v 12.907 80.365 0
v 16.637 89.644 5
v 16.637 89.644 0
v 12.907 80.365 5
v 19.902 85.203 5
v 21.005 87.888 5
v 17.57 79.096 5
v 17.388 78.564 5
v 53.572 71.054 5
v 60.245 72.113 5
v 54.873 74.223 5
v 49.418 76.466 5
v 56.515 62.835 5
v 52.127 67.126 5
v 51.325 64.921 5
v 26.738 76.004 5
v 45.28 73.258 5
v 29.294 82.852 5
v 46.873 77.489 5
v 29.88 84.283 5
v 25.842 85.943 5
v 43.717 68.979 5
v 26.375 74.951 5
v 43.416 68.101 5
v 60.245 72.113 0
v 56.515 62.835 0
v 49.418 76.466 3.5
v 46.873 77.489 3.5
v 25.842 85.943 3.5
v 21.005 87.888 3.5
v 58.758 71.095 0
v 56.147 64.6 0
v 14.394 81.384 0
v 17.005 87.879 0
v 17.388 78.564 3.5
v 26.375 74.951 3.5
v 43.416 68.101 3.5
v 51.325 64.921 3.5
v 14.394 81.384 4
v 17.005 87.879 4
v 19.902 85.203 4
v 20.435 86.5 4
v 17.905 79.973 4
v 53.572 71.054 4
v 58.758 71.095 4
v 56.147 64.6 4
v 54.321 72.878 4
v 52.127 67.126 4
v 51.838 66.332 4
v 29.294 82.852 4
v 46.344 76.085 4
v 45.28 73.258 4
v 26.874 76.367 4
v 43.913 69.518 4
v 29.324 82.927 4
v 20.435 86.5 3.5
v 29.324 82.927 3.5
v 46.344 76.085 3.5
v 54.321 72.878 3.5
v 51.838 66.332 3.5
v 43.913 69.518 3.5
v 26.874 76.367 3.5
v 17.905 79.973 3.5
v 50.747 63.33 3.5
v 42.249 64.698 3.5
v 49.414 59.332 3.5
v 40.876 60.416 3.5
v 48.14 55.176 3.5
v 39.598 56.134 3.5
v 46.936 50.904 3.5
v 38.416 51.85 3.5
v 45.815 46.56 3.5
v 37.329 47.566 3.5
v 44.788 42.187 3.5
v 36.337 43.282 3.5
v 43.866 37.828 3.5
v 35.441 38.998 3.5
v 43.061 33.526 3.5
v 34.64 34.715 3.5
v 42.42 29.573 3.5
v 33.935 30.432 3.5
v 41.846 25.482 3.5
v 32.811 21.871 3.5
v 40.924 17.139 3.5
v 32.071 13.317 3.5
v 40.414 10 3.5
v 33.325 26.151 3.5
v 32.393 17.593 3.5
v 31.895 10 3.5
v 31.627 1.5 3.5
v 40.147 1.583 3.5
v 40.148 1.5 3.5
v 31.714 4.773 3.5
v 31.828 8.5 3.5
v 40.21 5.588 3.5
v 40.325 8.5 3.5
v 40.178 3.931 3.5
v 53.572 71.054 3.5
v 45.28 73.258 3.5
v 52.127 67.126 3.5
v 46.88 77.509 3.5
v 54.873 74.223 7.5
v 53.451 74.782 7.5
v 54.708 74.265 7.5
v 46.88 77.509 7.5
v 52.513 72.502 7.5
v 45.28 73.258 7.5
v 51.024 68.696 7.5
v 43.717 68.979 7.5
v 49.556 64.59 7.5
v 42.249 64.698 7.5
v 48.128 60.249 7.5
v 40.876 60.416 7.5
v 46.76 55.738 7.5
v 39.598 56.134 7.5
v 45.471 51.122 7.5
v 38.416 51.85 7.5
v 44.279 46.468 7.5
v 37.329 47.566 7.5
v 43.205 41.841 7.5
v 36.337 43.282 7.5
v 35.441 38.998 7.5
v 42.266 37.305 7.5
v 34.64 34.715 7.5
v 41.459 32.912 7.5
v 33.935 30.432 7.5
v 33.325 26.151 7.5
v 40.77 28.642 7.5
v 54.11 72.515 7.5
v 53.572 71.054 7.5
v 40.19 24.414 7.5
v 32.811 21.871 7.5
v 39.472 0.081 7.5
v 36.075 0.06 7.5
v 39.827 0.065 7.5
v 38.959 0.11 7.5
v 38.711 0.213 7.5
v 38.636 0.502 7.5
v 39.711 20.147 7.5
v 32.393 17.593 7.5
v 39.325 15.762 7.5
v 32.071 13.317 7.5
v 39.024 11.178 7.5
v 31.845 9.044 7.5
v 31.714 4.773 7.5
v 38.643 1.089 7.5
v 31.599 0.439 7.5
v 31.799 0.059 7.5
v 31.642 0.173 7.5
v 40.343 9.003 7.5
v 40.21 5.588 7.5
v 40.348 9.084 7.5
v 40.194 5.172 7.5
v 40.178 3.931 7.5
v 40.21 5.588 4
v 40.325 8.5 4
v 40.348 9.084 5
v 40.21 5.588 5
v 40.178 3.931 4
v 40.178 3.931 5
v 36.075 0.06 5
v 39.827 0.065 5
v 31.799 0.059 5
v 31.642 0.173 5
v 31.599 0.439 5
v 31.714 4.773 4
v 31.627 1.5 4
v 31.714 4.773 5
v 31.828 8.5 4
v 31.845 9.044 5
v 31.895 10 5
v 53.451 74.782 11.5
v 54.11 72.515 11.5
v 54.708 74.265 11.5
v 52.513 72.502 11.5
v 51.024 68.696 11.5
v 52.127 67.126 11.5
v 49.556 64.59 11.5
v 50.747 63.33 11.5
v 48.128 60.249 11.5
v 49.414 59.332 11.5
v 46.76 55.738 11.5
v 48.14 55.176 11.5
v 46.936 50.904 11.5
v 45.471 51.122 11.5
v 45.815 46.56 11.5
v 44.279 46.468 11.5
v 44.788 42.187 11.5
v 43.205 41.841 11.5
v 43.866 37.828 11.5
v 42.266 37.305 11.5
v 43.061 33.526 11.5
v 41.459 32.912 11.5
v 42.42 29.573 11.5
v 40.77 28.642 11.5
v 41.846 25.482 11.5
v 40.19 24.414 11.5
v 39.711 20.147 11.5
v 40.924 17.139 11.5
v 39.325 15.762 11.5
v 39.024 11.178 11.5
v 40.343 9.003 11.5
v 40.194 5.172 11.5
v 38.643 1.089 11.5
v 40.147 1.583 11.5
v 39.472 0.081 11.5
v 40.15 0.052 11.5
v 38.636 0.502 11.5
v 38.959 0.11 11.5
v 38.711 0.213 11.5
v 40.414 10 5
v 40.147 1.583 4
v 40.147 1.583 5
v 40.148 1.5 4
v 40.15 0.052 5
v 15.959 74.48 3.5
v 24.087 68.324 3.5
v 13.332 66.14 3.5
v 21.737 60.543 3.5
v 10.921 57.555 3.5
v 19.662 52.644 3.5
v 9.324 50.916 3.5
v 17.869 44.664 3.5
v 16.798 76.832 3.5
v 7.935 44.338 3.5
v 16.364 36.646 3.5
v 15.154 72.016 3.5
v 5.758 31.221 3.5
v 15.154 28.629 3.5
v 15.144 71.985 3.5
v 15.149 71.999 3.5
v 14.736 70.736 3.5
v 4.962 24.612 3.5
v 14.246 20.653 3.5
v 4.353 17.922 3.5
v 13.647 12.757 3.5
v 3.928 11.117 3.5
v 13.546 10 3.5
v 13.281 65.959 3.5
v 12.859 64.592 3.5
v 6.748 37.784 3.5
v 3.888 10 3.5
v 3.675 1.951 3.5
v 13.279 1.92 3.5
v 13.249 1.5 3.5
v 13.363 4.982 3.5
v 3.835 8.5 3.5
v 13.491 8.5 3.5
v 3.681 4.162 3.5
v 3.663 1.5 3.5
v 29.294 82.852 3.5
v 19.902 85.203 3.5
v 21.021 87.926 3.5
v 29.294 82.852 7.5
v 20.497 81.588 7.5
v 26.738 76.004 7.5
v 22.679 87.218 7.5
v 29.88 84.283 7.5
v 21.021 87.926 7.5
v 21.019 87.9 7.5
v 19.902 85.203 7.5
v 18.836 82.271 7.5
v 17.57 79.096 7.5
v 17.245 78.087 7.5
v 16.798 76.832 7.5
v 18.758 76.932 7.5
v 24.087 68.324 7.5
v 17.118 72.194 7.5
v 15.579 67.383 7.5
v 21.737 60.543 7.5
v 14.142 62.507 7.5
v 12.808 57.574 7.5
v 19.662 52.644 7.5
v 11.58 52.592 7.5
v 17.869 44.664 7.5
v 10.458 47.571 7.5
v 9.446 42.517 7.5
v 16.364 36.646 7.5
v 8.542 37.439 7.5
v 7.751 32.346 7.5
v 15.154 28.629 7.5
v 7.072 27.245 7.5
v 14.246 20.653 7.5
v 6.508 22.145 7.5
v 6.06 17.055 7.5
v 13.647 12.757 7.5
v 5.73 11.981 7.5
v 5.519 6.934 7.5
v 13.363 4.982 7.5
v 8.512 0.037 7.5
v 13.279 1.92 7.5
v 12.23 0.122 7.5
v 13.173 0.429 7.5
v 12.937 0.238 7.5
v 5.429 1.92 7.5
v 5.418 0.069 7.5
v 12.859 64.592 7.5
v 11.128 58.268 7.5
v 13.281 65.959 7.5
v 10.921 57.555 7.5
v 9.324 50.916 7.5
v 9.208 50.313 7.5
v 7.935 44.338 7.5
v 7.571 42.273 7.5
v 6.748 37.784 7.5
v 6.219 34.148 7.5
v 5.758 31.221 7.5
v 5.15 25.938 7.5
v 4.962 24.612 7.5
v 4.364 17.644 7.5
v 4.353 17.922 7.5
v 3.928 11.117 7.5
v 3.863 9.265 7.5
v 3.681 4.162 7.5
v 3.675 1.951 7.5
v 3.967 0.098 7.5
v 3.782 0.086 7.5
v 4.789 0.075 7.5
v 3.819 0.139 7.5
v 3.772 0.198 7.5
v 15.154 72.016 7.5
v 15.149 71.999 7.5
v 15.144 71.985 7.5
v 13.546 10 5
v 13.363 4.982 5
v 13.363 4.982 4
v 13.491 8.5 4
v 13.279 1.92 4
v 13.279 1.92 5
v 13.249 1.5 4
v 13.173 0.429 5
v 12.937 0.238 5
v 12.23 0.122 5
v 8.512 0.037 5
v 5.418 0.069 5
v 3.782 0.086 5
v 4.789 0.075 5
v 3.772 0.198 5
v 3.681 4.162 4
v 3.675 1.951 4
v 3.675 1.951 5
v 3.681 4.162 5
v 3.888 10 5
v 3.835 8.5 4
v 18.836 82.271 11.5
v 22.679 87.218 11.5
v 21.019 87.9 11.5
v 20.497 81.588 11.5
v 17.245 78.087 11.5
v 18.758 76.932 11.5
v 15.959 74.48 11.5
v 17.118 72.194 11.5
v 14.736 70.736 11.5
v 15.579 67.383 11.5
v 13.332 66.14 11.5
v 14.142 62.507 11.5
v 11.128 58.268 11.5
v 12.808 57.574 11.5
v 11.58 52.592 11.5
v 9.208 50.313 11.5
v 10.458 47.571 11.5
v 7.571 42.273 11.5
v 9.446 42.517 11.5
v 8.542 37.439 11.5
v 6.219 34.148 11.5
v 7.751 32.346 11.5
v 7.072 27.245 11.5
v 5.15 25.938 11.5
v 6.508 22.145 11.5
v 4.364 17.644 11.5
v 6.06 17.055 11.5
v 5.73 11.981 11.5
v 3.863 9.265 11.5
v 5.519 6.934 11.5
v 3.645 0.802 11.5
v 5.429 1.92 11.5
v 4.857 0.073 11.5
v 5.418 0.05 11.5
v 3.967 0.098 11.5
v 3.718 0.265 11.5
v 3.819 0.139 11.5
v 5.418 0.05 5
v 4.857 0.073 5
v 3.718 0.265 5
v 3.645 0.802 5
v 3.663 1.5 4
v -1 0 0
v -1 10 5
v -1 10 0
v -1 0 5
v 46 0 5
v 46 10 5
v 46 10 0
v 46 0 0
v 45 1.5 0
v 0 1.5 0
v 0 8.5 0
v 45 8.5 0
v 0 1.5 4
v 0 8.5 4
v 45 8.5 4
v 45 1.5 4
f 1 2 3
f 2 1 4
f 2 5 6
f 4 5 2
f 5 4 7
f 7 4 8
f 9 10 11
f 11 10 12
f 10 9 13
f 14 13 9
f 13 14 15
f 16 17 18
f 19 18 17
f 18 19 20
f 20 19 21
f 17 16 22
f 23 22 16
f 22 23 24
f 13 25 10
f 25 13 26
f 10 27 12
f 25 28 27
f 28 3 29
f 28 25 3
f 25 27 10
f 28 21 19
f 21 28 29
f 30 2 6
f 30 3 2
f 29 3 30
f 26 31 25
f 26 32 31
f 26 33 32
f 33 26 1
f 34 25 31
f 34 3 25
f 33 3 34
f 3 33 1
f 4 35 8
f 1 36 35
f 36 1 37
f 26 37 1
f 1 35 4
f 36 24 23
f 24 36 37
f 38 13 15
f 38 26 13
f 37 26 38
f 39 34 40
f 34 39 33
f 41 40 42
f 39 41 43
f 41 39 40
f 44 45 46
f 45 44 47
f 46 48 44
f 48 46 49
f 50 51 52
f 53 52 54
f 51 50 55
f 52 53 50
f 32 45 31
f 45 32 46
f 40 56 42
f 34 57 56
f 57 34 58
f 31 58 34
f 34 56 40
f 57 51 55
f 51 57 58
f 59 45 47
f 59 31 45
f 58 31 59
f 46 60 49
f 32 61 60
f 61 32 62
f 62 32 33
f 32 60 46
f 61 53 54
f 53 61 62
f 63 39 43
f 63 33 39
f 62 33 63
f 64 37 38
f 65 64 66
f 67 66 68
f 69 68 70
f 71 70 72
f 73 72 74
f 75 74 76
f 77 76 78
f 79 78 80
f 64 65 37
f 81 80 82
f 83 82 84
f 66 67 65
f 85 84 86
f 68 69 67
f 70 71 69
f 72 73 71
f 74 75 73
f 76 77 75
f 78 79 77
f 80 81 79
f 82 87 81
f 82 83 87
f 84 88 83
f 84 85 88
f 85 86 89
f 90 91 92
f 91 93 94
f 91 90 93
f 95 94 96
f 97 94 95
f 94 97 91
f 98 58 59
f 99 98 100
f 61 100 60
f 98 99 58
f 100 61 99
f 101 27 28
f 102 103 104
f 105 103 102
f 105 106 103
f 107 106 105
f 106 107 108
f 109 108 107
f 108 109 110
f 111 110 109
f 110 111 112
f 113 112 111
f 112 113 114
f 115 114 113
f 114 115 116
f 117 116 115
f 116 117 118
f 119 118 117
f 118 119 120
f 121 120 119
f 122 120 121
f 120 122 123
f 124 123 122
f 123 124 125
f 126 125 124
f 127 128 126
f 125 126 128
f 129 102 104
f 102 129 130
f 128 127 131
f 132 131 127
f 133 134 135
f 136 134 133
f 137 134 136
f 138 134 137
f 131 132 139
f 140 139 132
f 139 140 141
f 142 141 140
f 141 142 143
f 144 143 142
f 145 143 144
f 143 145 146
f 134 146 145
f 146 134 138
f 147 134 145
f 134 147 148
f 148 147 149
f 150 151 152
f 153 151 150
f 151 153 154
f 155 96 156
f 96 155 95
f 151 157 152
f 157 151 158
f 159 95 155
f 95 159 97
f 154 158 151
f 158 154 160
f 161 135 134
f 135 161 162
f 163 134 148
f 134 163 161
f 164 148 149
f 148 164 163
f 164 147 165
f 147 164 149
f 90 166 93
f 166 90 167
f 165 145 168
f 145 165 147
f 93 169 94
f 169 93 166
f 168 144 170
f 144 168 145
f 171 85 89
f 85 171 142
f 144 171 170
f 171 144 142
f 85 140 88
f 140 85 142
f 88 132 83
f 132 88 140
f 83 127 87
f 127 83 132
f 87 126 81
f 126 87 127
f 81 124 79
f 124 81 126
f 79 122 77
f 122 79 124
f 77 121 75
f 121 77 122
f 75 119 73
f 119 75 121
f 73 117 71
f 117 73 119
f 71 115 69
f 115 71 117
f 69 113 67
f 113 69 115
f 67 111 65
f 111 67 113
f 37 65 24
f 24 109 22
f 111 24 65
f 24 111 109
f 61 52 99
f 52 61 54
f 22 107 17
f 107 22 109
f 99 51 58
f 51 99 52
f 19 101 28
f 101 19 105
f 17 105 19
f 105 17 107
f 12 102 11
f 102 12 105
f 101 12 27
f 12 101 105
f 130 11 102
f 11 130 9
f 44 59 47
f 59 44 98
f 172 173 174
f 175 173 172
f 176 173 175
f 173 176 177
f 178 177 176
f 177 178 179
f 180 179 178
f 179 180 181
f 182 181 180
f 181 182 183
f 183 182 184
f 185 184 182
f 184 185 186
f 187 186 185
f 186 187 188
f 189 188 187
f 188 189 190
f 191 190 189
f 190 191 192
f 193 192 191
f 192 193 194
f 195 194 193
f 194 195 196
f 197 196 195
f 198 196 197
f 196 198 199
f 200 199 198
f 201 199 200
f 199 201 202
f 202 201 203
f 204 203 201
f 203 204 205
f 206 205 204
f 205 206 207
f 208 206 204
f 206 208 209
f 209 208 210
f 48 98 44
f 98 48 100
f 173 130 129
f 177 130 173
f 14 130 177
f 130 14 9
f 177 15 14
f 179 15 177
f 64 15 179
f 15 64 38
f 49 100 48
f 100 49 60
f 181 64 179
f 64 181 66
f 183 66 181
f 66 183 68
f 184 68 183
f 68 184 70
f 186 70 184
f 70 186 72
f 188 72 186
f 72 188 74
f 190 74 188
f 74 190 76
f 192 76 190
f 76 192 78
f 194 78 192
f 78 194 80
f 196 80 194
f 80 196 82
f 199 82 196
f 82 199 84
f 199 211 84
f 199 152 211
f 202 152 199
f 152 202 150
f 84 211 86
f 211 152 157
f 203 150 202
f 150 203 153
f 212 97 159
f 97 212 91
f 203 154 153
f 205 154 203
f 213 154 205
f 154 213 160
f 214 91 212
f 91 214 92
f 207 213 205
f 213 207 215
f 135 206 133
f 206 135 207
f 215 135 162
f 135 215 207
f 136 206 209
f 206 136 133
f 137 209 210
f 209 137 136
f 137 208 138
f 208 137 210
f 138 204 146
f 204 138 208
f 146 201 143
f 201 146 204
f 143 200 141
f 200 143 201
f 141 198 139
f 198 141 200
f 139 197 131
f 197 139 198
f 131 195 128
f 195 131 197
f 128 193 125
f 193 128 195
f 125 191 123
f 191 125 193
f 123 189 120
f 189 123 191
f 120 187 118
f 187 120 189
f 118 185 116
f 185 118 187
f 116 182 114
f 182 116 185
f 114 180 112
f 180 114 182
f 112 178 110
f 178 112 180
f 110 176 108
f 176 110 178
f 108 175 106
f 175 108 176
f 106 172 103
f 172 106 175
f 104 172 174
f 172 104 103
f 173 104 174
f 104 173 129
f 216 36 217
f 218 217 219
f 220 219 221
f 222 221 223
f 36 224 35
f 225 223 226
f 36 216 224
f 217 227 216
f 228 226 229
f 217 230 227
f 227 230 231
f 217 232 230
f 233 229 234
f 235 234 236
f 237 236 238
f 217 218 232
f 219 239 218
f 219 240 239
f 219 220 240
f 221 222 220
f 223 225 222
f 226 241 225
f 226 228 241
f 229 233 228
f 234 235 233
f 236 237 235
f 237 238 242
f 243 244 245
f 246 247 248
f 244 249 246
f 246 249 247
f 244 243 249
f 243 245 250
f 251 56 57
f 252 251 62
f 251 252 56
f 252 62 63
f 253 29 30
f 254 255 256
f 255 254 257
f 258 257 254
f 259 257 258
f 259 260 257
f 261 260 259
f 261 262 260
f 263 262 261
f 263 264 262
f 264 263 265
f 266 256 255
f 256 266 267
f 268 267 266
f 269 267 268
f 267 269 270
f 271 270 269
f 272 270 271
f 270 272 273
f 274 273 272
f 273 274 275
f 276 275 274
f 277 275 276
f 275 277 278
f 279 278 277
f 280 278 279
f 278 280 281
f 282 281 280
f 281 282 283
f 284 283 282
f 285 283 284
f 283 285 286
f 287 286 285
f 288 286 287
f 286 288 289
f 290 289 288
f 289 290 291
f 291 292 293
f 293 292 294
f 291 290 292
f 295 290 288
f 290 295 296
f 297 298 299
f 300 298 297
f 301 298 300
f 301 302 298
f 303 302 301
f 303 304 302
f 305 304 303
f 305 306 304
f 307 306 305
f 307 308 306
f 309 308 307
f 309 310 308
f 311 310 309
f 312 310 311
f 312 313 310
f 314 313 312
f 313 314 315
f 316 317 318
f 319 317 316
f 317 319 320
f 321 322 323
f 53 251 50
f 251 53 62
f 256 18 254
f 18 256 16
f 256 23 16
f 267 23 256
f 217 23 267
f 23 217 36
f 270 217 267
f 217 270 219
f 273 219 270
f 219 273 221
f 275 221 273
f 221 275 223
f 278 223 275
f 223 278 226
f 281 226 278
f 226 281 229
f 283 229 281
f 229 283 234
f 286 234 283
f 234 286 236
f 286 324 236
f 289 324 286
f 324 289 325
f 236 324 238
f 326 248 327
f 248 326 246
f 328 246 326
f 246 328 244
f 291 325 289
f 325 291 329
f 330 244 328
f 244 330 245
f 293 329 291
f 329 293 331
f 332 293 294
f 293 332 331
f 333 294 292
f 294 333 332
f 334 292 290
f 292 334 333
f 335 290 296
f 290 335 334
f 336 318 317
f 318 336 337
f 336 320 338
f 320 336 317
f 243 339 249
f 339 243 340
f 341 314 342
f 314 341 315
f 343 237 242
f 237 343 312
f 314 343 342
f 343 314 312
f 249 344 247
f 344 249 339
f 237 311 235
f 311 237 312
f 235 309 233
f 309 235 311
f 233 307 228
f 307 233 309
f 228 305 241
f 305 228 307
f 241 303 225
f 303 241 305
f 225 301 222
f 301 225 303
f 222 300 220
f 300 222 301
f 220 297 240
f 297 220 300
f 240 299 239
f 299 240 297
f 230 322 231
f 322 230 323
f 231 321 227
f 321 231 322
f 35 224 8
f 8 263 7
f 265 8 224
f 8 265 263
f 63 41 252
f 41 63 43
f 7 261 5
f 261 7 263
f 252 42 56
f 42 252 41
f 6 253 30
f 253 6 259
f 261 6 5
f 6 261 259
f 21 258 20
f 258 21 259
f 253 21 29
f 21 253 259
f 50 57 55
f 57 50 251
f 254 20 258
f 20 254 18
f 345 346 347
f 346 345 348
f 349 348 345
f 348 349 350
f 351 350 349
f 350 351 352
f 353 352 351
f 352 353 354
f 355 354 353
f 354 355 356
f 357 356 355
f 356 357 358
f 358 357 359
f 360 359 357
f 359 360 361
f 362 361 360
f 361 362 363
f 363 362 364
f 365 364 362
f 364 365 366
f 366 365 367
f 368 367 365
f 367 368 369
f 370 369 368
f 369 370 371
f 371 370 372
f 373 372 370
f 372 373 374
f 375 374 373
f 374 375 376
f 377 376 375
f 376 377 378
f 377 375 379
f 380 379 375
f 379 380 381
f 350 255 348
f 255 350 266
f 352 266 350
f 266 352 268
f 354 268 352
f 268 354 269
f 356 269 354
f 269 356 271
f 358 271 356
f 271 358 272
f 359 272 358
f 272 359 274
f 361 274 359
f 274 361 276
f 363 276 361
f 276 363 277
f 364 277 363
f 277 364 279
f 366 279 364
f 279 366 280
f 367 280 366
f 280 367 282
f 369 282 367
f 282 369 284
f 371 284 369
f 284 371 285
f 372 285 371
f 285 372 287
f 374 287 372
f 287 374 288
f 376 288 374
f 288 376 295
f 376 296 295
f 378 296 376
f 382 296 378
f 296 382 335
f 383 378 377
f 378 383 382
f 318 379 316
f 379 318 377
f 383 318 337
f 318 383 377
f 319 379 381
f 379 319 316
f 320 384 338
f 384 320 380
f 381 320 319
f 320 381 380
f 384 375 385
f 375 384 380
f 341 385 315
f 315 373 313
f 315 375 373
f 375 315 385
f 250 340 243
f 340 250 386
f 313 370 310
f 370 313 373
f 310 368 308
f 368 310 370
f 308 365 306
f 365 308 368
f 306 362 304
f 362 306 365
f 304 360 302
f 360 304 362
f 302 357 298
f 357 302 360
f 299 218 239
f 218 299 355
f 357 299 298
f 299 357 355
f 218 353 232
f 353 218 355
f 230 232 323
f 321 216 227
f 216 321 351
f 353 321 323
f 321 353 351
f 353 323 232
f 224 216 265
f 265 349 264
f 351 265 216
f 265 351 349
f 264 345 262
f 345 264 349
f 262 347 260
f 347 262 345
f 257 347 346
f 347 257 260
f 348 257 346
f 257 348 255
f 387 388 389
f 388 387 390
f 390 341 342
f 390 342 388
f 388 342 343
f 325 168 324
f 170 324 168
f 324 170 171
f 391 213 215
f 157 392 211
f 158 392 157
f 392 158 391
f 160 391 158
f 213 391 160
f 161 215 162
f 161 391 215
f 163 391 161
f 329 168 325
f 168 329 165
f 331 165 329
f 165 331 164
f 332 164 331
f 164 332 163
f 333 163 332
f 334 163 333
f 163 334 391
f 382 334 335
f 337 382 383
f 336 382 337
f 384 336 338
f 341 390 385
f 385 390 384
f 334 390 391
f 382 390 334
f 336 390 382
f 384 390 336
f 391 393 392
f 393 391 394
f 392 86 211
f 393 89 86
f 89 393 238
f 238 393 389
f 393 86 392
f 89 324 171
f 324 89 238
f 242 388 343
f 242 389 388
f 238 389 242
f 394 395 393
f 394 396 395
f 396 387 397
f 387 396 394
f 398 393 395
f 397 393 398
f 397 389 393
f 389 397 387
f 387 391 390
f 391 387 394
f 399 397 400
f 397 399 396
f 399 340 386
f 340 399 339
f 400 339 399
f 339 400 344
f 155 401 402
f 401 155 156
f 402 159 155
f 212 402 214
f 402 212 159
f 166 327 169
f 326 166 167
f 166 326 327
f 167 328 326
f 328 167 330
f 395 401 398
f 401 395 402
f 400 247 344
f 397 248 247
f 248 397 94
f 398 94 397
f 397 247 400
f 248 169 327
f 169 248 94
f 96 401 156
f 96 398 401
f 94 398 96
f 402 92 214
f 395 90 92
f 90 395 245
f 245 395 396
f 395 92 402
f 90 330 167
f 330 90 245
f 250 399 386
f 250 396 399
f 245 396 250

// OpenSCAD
// Module names are of the form poly_<inkscape-path-id>().  As a result,
// you can associate a polygon in this OpenSCAD program with the corresponding
// SVG element in the Inkscape document by looking for the XML element with
// the attribute id="inkscape-path-id".

// fudge value is used to ensure that subtracted solids are a tad taller
// in the z dimension than the polygon being subtracted from.  This helps
// keep the resulting .stl file manifold.
fudge = 0.1;
translate([-1,0,0]) difference() {cube([47,10,5]);translate ([1,1.5,0])cube([45,7,4]);}
//rotate([0,0,-22.1])
rotate(a=-21.9) translate([-18,79.38,0]) 
difference() {cube([47,10,5]);translate ([1,1.5,0])cube([45,7,4]);}
module poly_path4233(h)
{
  scale([25.4/90, -25.4/90, 1]) union()
  {
    linear_extrude(height=h)
      polygon([[61.999157,117.261290],[56.537357,102.902390],[51.210440,88.730451],[46.194283,74.420419],[41.489101,59.973381],[37.095106,45.390420],[33.012513,30.672623],[29.241536,15.821074],[25.782388,0.836858],[22.635284,-14.278939],[19.800436,-29.525232],[17.278059,-44.900936],[15.068367,-60.404965],[13.171573,-76.036236],[11.587891,-91.793662],[10.317535,-107.676158],[9.360719,-123.682639],[8.717656,-139.812020],[8.234658,-155.898700],[23.544967,-155.898700],[38.855287,-155.898700],[38.862287,-142.994000],[39.135375,-128.233886],[39.919045,-112.477754],[41.182404,-95.999196],[42.894562,-79.071802],[45.024628,-61.969165],[47.541710,-44.964875],[50.414917,-28.332523],[53.613357,-12.345700],[57.015440,2.761104],[60.640933,17.466663],[64.523056,31.879767],[68.695026,46.109208],[73.190064,60.263777],[78.041389,74.452266],[83.282221,88.783467],[88.945777,103.366170],[90.401137,107.011930],[77.179437,112.471130],[63.166777,118.234520],[62.497570,118.074114],[61.999317,117.261290],[61.999297,117.261290]]);
  }
}

module poly_path4174(h)
{
  scale([25.4/90, -25.4/90, 1]) union()
  {
    linear_extrude(height=h)
      polygon([[84.209107,105.638760],[71.861433,72.063278],[66.671874,56.633467],[62.029004,41.742548],[57.850703,27.115723],[54.054851,12.478196],[50.559326,-2.444829],[47.282007,-17.928150],[44.248200,-34.056683],[41.535434,-50.669700],[39.169436,-67.527145],[37.175930,-84.388960],[35.580643,-101.015090],[34.409302,-117.165477],[33.687631,-132.600066],[33.441357,-147.078800],[33.441357,-155.813970],[35.850237,-155.813970],[38.259117,-155.813970],[38.654887,-149.273230],[39.418327,-128.941840],[40.010202,-114.641008],[41.028672,-99.743574],[42.453782,-84.406396],[44.265577,-68.786335],[46.444102,-53.040249],[48.969400,-37.324998],[51.821517,-21.797442],[54.980497,-6.614440],[58.204550,7.203863],[61.836565,21.384190],[70.058484,49.968314],[79.114246,77.412728],[83.788567,90.168418],[88.471847,101.992230],[90.545257,107.007760],[88.282827,107.825870],[86.561595,108.421976],[85.609352,108.417468],[84.975417,107.570383],[84.209107,105.638760]]);
  }
}

module poly_path4235(h)
{
  scale([25.4/90, -25.4/90, 1]) union()
  {
    linear_extrude(height=h)
      polygon([[-34.507818,142.677140],[-43.071209,119.549336],[-50.846347,96.675215],[-57.864983,73.933129],[-64.158865,51.201428],[-69.759744,28.358463],[-74.699370,5.282586],[-79.009491,-18.147852],[-82.721859,-42.054500],[-85.854101,-67.727790],[-88.330102,-95.086682],[-89.957565,-121.606299],[-90.544191,-144.761760],[-90.545257,-155.191590],[-73.574695,-155.191590],[-56.604132,-155.191590],[-56.597032,-149.711510],[-55.746253,-123.826329],[-54.086958,-95.087510],[-51.303132,-66.422264],[-47.458452,-37.737552],[-42.584555,-9.173295],[-36.713078,19.130590],[-29.875658,47.034183],[-22.103930,74.397565],[-13.429533,101.080817],[-3.884102,126.944020],[-0.032371,137.089452],[1.629584,142.118970],[1.110907,143.063096],[-1.046884,144.396011],[-13.117093,149.683680],[-28.685032,155.898700],[-30.691946,152.030010],[-34.507844,142.677140]]);
  }
}

module poly_path4172(h)
{
  scale([25.4/90, -25.4/90, 1]) union()
  {
    linear_extrude(height=h)
      polygon([[-30.097092,153.736140],[-40.787227,125.706822],[-50.433448,97.572588],[-59.035754,69.333438],[-66.594147,40.989373],[-73.108624,12.540393],[-78.579188,-16.013501],[-83.005836,-44.672309],[-86.388570,-73.436030],[-87.979331,-90.390381],[-89.016506,-104.310356],[-89.663626,-117.863381],[-90.084223,-133.716880],[-90.516793,-155.106860],[-87.337256,-155.106860],[-84.157718,-155.106860],[-83.723110,-133.716880],[-83.147861,-116.114867],[-82.138286,-98.379100],[-80.700381,-80.538681],[-78.840139,-62.622714],[-76.563558,-44.660303],[-73.876632,-26.680551],[-70.785357,-8.712562],[-67.295728,9.214560],[-63.413741,27.071712],[-59.145390,44.829790],[-54.496672,62.459690],[-49.473581,79.932309],[-44.082114,97.218543],[-38.328265,114.289289],[-32.218030,131.115442],[-25.757404,147.667900],[-23.273256,153.811370],[-25.144766,154.489870],[-28.093359,155.608360],[-28.634236,155.674847],[-29.134876,155.397687],[-30.097092,153.736140]]);
  }
}
translate([28,37.7,3.5]) rotate([0,0,-22.35]){
poly_path4233(4);
poly_path4174(8);
poly_path4235(4);
poly_path4172(8);
}
